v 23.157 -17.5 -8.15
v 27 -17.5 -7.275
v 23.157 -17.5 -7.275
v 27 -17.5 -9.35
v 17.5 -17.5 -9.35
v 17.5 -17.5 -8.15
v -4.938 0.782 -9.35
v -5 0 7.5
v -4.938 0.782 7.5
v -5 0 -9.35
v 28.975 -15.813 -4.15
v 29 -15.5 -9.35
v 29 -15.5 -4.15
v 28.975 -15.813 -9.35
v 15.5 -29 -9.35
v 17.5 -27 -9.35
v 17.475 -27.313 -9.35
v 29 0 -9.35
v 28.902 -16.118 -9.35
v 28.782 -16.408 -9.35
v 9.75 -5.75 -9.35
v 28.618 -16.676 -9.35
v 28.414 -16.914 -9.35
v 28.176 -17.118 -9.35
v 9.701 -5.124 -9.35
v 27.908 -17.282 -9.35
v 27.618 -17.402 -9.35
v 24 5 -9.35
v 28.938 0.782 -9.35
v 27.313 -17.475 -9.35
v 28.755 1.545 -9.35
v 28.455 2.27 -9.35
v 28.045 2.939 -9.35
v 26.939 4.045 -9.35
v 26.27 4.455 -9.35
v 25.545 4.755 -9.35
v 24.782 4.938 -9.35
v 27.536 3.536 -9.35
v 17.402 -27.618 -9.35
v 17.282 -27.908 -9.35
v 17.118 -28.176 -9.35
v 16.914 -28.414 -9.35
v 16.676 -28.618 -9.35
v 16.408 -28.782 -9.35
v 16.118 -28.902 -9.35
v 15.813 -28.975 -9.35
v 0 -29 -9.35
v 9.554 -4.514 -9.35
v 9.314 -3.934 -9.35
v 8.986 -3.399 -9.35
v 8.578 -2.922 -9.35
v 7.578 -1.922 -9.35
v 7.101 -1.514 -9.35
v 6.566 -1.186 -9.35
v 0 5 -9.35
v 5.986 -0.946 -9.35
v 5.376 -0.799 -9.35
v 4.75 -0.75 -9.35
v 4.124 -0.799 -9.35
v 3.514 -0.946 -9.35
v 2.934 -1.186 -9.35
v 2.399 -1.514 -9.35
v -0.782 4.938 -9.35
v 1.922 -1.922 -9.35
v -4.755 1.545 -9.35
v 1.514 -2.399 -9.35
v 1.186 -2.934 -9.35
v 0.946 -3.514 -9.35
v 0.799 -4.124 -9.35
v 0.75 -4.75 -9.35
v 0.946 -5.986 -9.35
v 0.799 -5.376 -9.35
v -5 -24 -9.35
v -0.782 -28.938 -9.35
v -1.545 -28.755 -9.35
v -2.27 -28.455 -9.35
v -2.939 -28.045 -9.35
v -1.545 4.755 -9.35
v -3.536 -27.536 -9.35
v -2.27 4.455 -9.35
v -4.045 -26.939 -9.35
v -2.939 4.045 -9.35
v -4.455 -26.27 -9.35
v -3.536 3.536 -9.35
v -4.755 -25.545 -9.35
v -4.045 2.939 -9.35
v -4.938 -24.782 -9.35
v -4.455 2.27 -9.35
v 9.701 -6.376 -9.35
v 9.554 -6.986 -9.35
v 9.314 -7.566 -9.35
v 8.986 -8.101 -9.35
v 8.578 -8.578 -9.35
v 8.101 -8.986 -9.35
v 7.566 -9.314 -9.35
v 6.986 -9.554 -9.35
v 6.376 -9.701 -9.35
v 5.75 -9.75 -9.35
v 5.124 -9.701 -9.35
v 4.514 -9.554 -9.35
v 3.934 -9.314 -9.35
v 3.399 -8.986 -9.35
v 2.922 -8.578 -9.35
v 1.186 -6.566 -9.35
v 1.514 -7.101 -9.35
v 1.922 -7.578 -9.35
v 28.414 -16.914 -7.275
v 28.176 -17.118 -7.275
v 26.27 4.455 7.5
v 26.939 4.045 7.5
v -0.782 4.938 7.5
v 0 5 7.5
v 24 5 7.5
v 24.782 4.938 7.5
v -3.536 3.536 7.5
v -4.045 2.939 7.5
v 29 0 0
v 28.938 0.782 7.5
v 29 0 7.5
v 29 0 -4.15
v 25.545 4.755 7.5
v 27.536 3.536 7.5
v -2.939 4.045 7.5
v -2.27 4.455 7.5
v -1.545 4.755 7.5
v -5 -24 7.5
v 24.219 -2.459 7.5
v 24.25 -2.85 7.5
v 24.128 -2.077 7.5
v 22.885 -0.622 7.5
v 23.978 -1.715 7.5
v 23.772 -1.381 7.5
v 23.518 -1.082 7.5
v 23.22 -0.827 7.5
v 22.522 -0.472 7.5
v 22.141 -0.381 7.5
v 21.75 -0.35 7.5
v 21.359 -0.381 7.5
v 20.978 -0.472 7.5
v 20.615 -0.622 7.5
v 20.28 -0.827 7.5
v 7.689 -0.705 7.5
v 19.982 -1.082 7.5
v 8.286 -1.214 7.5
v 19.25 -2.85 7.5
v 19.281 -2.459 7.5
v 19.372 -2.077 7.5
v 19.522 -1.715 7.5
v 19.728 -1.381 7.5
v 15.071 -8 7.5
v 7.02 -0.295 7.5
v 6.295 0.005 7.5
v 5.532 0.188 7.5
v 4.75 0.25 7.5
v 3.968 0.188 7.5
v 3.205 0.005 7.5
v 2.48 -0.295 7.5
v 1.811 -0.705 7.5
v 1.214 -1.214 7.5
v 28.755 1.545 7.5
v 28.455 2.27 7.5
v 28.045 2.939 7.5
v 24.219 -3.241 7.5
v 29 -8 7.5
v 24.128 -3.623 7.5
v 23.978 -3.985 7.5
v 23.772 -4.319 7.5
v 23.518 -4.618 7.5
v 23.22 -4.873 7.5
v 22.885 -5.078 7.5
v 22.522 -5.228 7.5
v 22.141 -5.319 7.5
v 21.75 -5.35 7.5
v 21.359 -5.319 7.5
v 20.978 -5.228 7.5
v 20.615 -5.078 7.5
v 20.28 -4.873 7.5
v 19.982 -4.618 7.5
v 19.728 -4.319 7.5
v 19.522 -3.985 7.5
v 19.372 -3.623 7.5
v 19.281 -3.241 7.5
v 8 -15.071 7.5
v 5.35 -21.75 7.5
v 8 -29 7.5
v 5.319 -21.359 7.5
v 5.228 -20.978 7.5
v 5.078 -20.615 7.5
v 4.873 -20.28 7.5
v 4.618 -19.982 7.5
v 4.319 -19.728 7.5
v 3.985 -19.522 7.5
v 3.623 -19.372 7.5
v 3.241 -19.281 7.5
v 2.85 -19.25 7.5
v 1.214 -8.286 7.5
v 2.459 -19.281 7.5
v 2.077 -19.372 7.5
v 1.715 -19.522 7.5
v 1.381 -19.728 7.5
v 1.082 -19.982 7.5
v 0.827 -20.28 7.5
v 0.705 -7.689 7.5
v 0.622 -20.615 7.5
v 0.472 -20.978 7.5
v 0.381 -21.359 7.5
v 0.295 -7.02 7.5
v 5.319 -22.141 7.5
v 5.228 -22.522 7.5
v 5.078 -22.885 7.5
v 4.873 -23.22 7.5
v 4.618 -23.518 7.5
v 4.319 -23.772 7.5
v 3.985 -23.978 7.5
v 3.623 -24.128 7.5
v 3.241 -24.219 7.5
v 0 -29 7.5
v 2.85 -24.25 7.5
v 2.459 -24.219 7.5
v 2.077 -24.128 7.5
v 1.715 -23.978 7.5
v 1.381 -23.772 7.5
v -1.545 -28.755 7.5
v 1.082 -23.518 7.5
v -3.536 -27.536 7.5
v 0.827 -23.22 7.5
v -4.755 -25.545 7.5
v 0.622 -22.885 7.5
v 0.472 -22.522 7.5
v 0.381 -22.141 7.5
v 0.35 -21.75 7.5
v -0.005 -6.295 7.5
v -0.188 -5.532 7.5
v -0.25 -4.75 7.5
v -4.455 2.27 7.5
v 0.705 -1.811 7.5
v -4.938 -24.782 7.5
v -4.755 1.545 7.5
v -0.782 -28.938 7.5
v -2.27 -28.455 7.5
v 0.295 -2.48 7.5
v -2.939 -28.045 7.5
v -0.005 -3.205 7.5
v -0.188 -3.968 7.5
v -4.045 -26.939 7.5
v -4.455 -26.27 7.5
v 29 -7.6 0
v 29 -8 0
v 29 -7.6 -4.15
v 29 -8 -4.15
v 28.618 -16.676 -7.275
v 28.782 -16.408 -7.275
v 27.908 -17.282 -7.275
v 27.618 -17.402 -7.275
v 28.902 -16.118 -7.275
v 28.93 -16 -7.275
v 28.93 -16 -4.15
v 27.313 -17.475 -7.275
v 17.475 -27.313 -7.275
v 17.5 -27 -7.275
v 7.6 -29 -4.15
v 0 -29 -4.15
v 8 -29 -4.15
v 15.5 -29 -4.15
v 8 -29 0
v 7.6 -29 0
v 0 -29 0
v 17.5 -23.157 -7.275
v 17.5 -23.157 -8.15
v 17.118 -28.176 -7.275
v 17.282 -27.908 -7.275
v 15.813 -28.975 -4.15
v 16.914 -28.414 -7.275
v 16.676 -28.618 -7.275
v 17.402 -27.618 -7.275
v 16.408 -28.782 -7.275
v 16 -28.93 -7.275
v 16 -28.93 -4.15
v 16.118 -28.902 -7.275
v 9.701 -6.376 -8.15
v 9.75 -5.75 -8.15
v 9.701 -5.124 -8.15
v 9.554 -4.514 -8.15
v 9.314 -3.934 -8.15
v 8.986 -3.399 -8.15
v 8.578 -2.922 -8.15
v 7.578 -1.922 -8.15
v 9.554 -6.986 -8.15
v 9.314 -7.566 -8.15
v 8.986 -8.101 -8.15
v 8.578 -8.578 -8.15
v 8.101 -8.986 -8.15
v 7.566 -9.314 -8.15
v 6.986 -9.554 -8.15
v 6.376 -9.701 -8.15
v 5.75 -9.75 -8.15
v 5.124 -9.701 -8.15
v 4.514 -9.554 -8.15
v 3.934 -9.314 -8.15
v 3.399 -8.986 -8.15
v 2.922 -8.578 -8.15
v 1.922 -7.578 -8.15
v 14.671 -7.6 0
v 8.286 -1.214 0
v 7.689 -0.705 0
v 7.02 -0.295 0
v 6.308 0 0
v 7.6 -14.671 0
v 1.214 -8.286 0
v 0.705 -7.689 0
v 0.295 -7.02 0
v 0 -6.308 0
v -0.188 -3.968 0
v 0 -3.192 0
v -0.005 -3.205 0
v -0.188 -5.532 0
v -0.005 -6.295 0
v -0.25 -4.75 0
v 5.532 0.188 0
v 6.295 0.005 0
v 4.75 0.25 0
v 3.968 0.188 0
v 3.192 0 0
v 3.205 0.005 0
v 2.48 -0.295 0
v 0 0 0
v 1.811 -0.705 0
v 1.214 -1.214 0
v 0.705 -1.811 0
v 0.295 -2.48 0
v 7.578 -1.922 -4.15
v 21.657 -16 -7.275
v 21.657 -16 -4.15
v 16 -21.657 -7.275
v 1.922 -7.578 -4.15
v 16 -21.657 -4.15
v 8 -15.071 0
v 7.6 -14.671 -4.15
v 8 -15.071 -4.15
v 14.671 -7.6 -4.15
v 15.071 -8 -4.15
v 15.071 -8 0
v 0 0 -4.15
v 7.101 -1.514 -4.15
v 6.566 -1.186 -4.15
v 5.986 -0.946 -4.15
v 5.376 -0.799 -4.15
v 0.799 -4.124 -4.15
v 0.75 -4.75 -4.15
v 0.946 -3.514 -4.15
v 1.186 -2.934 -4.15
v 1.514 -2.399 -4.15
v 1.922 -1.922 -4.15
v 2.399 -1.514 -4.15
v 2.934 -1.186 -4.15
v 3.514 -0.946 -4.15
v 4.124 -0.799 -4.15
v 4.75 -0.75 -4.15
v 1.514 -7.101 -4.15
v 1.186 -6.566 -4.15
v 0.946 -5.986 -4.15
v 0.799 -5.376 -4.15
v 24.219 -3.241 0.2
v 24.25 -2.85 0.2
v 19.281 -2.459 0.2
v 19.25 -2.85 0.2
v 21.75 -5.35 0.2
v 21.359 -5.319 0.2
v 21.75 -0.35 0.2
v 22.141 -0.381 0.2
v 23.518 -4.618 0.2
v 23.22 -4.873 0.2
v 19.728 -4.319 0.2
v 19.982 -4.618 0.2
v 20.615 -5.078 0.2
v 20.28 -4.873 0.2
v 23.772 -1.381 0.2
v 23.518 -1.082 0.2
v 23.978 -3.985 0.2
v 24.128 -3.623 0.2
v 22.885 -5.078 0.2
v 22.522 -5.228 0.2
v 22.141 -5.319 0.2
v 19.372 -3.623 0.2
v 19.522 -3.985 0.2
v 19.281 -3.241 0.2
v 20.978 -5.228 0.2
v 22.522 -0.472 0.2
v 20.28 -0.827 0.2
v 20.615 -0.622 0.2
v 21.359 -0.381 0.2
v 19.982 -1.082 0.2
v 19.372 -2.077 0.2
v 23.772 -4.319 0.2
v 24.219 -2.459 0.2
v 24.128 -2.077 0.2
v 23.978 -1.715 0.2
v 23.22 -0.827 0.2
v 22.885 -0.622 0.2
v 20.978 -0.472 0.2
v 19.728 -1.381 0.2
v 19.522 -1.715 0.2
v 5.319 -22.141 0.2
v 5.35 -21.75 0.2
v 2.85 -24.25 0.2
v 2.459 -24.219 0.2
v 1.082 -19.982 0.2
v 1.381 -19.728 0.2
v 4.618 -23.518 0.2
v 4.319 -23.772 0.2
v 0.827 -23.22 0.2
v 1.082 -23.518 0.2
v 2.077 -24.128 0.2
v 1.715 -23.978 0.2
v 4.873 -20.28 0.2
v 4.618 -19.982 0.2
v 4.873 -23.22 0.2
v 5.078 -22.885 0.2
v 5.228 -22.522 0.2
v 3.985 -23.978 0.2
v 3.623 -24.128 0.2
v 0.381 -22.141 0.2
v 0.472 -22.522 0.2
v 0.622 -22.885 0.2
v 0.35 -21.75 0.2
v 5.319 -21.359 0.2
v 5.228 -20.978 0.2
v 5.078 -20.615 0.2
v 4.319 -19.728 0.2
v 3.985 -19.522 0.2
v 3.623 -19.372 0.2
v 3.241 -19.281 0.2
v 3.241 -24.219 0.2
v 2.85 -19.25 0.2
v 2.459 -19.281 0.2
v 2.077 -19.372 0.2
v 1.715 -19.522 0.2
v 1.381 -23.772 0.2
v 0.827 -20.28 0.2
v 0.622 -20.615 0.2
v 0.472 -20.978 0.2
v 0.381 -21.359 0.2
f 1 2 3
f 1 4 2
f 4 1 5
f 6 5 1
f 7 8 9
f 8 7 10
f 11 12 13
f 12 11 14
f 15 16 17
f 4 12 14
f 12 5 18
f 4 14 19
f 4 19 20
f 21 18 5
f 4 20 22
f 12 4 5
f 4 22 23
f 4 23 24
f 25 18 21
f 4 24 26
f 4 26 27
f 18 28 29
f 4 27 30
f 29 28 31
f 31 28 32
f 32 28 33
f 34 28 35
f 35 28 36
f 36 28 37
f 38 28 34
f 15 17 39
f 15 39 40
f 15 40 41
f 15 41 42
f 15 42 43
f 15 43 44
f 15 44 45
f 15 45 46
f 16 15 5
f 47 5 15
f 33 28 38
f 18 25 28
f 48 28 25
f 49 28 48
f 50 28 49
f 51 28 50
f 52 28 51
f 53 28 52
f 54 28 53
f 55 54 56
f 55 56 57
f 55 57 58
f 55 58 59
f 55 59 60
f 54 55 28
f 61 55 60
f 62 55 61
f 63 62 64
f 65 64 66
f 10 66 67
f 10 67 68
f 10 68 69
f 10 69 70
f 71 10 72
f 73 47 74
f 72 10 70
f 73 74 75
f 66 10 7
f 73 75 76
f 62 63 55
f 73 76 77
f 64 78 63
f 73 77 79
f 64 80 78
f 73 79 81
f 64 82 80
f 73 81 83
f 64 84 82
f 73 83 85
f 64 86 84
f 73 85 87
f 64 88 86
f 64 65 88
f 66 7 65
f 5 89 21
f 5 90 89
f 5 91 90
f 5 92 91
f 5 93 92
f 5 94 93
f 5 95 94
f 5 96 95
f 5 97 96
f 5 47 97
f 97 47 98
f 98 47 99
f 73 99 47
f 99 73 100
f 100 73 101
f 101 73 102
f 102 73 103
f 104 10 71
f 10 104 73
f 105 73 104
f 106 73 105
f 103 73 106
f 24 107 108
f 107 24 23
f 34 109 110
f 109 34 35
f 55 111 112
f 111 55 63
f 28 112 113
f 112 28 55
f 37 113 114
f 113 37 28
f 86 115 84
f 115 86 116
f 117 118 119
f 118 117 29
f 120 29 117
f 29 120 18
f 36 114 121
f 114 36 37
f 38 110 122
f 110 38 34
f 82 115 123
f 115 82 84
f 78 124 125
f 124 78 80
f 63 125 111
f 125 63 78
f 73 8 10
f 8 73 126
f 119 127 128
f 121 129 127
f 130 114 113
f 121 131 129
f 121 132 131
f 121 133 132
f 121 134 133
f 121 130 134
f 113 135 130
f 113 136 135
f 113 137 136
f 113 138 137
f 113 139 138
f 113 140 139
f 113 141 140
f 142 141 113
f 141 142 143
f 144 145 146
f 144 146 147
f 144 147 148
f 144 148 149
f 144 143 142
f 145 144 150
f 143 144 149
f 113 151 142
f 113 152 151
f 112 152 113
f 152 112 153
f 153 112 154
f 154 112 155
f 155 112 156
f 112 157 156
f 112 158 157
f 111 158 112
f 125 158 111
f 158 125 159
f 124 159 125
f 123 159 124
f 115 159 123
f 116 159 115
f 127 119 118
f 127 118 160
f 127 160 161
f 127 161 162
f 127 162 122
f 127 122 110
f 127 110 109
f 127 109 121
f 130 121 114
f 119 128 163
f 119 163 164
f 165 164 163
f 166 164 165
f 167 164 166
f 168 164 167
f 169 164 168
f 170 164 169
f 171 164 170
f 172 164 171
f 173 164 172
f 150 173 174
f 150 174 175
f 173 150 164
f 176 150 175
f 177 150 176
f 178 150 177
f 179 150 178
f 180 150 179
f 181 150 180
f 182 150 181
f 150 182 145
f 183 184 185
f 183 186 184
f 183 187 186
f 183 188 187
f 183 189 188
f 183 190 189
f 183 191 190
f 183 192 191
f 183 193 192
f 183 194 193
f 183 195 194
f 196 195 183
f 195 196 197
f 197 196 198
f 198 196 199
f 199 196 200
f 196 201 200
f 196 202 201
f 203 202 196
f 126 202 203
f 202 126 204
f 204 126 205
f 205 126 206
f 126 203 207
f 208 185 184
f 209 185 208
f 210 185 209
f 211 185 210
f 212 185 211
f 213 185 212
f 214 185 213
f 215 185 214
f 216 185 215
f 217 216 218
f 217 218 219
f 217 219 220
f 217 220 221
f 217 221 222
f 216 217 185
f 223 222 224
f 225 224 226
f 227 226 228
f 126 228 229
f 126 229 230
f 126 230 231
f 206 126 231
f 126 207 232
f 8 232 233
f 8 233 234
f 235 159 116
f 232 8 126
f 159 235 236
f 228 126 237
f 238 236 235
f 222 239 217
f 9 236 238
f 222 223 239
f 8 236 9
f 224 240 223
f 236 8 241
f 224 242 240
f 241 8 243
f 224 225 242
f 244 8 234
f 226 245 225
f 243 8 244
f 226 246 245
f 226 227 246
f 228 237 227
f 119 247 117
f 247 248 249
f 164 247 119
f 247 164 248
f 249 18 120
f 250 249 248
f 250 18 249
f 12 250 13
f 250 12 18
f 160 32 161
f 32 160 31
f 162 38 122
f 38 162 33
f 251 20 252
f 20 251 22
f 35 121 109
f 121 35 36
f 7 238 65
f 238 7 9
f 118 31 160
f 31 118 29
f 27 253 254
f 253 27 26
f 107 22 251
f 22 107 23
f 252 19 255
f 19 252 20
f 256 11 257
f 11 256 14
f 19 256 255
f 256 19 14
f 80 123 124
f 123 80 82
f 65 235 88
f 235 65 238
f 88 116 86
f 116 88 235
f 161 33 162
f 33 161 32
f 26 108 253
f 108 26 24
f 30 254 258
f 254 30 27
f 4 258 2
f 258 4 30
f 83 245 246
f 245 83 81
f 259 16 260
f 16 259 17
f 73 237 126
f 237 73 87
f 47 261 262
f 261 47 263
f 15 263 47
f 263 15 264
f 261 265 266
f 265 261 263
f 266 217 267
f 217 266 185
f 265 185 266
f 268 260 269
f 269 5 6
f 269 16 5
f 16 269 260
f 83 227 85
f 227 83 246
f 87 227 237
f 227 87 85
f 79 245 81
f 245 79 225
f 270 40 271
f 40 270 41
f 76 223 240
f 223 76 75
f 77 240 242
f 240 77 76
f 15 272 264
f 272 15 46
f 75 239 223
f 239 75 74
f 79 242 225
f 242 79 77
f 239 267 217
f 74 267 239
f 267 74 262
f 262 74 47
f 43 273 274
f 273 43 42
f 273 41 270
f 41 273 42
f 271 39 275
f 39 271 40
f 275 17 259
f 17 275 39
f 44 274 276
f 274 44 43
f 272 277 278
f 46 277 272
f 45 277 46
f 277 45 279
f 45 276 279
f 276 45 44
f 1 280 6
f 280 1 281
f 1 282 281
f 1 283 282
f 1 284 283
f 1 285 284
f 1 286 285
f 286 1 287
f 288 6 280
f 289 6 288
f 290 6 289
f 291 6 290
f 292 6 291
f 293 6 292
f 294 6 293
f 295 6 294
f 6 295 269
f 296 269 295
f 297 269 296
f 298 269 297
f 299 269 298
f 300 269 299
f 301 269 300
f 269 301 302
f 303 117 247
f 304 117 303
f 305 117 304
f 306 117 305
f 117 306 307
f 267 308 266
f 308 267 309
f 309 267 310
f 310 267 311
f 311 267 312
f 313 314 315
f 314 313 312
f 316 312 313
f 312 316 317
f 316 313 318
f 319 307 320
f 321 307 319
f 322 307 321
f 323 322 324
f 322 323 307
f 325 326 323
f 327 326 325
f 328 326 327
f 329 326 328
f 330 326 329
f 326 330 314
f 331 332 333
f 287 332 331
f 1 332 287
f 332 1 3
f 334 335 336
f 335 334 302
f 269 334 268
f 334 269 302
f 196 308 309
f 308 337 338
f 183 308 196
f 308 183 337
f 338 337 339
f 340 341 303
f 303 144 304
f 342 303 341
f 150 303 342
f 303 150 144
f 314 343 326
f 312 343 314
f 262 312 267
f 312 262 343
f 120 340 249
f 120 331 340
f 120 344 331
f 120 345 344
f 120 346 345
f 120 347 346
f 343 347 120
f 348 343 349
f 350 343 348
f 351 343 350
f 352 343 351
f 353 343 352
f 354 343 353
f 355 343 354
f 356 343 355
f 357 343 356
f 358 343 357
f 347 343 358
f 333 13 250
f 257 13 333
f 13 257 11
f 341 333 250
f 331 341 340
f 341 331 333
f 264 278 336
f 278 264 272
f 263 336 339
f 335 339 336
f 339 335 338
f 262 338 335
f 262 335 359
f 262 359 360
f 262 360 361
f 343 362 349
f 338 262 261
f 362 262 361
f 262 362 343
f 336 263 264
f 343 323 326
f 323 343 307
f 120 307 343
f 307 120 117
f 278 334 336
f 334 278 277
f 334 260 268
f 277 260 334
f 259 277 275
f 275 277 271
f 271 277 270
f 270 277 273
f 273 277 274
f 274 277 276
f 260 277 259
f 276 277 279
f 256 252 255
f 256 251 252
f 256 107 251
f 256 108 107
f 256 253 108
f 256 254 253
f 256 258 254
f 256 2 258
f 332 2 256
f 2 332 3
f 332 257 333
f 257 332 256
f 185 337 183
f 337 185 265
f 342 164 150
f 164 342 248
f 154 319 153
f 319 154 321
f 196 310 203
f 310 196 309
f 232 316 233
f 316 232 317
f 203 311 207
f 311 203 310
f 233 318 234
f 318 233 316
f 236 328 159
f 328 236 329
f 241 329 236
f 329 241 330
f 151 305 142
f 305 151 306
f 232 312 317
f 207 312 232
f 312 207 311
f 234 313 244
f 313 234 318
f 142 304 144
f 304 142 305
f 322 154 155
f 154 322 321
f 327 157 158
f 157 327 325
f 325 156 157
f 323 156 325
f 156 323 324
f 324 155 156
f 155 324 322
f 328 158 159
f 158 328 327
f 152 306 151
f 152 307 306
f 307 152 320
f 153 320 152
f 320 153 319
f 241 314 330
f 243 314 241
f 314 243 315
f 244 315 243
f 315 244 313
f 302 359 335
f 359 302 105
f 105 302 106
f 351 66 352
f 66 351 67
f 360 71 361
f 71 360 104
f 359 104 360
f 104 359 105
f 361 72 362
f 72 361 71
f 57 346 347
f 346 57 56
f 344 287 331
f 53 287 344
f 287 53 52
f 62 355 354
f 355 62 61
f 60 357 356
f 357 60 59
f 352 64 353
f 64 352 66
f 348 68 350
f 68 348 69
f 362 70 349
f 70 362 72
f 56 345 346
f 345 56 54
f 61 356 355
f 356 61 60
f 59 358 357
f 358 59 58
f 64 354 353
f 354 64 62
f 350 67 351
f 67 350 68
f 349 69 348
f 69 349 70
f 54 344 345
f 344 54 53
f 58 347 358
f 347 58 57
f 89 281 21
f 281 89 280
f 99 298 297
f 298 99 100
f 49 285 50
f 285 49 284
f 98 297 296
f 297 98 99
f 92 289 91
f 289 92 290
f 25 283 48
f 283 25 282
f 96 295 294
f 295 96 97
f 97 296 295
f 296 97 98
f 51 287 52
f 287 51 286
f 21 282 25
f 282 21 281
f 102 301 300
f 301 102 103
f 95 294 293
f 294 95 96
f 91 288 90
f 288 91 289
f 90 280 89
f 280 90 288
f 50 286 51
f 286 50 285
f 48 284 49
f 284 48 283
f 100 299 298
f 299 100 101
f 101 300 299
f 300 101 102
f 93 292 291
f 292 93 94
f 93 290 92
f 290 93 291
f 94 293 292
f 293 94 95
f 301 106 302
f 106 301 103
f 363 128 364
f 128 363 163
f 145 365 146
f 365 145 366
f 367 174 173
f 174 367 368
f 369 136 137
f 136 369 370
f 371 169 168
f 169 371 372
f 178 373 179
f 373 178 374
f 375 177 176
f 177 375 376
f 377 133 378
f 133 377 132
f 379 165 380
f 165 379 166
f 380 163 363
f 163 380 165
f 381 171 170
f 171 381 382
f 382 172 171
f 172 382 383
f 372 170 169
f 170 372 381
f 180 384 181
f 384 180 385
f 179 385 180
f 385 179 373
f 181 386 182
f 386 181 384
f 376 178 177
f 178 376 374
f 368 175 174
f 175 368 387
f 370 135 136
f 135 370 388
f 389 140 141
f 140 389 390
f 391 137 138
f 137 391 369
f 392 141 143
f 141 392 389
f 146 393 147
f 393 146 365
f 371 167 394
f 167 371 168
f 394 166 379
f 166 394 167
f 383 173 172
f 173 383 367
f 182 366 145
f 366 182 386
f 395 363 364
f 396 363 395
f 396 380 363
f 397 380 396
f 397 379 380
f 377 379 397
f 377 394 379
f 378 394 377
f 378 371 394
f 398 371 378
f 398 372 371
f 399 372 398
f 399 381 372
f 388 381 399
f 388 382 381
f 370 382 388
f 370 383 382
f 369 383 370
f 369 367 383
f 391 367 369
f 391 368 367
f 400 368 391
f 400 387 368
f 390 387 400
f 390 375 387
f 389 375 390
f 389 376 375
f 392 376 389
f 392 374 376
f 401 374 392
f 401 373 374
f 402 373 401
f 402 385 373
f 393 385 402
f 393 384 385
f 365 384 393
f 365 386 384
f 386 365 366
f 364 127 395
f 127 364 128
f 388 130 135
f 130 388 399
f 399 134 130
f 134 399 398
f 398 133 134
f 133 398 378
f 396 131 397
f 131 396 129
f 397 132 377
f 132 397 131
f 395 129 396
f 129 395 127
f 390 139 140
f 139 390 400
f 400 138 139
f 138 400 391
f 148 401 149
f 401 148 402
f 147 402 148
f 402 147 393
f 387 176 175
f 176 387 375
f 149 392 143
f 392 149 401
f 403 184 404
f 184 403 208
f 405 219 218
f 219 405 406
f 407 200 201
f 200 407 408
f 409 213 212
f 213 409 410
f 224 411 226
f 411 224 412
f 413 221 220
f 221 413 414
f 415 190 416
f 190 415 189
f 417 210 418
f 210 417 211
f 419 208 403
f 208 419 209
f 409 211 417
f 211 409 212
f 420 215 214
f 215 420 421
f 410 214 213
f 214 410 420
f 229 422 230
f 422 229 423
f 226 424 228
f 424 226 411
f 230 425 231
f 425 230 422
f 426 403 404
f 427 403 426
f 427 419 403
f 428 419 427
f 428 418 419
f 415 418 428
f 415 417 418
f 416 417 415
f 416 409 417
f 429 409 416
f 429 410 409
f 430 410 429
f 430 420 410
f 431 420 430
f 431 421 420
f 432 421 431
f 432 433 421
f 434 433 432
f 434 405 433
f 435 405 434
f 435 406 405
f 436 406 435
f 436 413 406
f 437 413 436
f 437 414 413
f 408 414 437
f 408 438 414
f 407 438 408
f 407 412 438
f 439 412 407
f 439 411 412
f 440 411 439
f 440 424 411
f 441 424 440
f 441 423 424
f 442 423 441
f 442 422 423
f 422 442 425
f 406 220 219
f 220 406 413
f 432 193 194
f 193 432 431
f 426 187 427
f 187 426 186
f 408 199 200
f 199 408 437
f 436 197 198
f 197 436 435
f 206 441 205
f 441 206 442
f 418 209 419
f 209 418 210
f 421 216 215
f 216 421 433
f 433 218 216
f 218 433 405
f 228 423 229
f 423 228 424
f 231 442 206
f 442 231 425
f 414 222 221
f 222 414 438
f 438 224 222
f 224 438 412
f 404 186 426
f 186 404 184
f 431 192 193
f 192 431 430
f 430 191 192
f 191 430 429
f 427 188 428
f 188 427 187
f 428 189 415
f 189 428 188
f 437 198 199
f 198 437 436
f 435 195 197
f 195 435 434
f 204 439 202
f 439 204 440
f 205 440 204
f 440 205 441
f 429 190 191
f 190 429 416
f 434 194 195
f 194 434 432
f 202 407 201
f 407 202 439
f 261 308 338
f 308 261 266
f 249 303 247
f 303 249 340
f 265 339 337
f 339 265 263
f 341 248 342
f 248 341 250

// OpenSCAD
/* configuration parameters */
bedHt     = 4.15;
plateHt   = 3.125;
plateOff  = 16.0;
corkOff   = 8;
nutHt     = 4;
washerDia = 8;
washerOff = 4.75;
boltDia   = 10;
clipTopThick = 1.2; 
clipBotThick = 7.5;

clipThick = bedHt+max(plateHt,nutHt)+clipTopThick+clipBotThick;

$fn=40;

module clipBasicForm() { clipBasicFormC(); }

if (1) rotate([180,0,0]) {
   difference() {
      clipBasicForm();
      assembly(slot=1);

      /* M5 bolt holes through bottom to lock down */
      translate([21.75,2.85, -clipBotThick-0.2]) cylinder(d=5,h=clipBotThick);
      translate([2.85,21.75, -clipBotThick-0.2]) cylinder(d=5,h=clipBotThick);
   }

   difference() {
      intersection() {
         support();
         clipBasicForm();
      }
      translate([0,0,0]) slotForm(mainDia=boltDia);
   }
}

module support() {
   width = 0.4;

   translate([corkOff-width,corkOff-width,-clipBotThick]) difference() {
      cube([35 - corkOff+width, 35 - corkOff+width, bedHt+clipBotThick]);
      translate([width,width,-0.1]) cube([35 - corkOff+width, 35 - corkOff+width, clipThick+0.2]);
   }
}

module clipBasicFormC() {
   translate([0,0,-clipBotThick]) {
      if (1) hull() {
         cylinder(r=5,h=clipThick);
         translate([24,0,0]) cylinder(r=5,h=clipThick);
         translate([0,plateOff-3.5,0]) cylinder(r=5,h=clipThick);
         translate([27,plateOff-0.5,0]) cylinder(r=2,h=clipThick);
      }
      hull() {
         cylinder(r=5,h=clipThick);
         translate([00,24,0]) cylinder(r=5,h=clipThick);
         translate([plateOff-3.5,0,0]) cylinder(r=5,h=clipThick);
         translate([plateOff-0.5,27,0]) cylinder(r=2,h=clipThick);
      }
   }
}

/* deprecated */
module clipBasicFormA() {
   translate([0,0,-clipBotThick]) {
      difference() {
         union() {
            if (1) hull() {
               cylinder(r=5,h=clipThick);
               translate([30,0,0]) cylinder(r=5,h=clipThick);
               translate([0,plateOff-3,0]) cylinder(r=5,h=clipThick);
               translate([33,plateOff,0]) cylinder(r=2,h=clipThick);
            }
            hull() {
               cylinder(r=5,h=clipThick);
               translate([00,30,0]) cylinder(r=5,h=clipThick);
               translate([plateOff-3,0,0]) cylinder(r=5,h=clipThick);
               translate([plateOff,33,0]) cylinder(r=2,h=clipThick);
            }
         } /* union */
      }

      if (0) linear_extrude(height=clipThick)
         polygon(points=[[0,0],[35,0], [35,plateOff], [35,plateOff+2],
                         [plateOff+2,plateOff+2], [plateOff+2, 35],
                         [plateOff, 35], [0,35], [0, 0]]);
   }
}

/* big overlap with glass plate */
module clipBasicFormB() {
   translate([0,0,-clipBotThick]) {
      difference() hull() {
         cylinder(r=5,h=clipThick);
         translate([30,0,0]) cylinder(r=5,h=clipThick);
         translate([00,30,0]) cylinder(r=5,h=clipThick);
         // translate([30,30,0]) cylinder(r=5,h=clipThick);
 linear_extrude(height=clipThick) polygon(points=[[0,0],[35,0], [35,plateOff], [plateOff, 35], [0,35], [0, 0]]);
      }
   }
}

module assembly(slot=0, access=1) {
   /* heated bed */
   color("red")
      cube([40, 40, bedHt]);

   /* plate */
   color("blue") 
      translate([plateOff, plateOff, bedHt]) cube([40 - plateOff, 40 - plateOff, plateHt]);

   /* cork */
   color("brown") 
      translate([corkOff, corkOff, -10]) cube([40 - corkOff, 40 - corkOff, 10]);

   /* bolt, etc. */
   color("grey") 
      translate([washerOff, washerOff, -10]) cylinder(d=boltDia,h=10);
   color("grey") 
      translate([washerOff, washerOff, 0]) cylinder(d=washerDia,h=nutHt+bedHt);

   if (slot) slotForm();

   if (access) {
      color("green") hull() {
         translate([washerOff, washerOff, nutHt + bedHt -0.1]) cylinder(d=washerDia,h=5);
         translate([washerOff+1, washerOff+1, nutHt + bedHt -0.1]) cylinder(d=washerDia,h=5);
      }
   }
}
module slotForm(mainDia=washerDia) {
   /* slot to allow clearing bolt when sliding on */
   color ("grey") {
      translate([washerOff, washerOff, 0]) {
         rotate([0,0,45]) translate([0,-0.5*mainDia, 0])
            cube([1.4*40+5, mainDia, nutHt+bedHt]);
      }

      translate([washerOff, washerOff, 0]) {
         rotate([0,0,45]) translate([0,-0.5*boltDia, -10]) cube([1.4*40+5, boltDia, 10]);
      }
   }
}
